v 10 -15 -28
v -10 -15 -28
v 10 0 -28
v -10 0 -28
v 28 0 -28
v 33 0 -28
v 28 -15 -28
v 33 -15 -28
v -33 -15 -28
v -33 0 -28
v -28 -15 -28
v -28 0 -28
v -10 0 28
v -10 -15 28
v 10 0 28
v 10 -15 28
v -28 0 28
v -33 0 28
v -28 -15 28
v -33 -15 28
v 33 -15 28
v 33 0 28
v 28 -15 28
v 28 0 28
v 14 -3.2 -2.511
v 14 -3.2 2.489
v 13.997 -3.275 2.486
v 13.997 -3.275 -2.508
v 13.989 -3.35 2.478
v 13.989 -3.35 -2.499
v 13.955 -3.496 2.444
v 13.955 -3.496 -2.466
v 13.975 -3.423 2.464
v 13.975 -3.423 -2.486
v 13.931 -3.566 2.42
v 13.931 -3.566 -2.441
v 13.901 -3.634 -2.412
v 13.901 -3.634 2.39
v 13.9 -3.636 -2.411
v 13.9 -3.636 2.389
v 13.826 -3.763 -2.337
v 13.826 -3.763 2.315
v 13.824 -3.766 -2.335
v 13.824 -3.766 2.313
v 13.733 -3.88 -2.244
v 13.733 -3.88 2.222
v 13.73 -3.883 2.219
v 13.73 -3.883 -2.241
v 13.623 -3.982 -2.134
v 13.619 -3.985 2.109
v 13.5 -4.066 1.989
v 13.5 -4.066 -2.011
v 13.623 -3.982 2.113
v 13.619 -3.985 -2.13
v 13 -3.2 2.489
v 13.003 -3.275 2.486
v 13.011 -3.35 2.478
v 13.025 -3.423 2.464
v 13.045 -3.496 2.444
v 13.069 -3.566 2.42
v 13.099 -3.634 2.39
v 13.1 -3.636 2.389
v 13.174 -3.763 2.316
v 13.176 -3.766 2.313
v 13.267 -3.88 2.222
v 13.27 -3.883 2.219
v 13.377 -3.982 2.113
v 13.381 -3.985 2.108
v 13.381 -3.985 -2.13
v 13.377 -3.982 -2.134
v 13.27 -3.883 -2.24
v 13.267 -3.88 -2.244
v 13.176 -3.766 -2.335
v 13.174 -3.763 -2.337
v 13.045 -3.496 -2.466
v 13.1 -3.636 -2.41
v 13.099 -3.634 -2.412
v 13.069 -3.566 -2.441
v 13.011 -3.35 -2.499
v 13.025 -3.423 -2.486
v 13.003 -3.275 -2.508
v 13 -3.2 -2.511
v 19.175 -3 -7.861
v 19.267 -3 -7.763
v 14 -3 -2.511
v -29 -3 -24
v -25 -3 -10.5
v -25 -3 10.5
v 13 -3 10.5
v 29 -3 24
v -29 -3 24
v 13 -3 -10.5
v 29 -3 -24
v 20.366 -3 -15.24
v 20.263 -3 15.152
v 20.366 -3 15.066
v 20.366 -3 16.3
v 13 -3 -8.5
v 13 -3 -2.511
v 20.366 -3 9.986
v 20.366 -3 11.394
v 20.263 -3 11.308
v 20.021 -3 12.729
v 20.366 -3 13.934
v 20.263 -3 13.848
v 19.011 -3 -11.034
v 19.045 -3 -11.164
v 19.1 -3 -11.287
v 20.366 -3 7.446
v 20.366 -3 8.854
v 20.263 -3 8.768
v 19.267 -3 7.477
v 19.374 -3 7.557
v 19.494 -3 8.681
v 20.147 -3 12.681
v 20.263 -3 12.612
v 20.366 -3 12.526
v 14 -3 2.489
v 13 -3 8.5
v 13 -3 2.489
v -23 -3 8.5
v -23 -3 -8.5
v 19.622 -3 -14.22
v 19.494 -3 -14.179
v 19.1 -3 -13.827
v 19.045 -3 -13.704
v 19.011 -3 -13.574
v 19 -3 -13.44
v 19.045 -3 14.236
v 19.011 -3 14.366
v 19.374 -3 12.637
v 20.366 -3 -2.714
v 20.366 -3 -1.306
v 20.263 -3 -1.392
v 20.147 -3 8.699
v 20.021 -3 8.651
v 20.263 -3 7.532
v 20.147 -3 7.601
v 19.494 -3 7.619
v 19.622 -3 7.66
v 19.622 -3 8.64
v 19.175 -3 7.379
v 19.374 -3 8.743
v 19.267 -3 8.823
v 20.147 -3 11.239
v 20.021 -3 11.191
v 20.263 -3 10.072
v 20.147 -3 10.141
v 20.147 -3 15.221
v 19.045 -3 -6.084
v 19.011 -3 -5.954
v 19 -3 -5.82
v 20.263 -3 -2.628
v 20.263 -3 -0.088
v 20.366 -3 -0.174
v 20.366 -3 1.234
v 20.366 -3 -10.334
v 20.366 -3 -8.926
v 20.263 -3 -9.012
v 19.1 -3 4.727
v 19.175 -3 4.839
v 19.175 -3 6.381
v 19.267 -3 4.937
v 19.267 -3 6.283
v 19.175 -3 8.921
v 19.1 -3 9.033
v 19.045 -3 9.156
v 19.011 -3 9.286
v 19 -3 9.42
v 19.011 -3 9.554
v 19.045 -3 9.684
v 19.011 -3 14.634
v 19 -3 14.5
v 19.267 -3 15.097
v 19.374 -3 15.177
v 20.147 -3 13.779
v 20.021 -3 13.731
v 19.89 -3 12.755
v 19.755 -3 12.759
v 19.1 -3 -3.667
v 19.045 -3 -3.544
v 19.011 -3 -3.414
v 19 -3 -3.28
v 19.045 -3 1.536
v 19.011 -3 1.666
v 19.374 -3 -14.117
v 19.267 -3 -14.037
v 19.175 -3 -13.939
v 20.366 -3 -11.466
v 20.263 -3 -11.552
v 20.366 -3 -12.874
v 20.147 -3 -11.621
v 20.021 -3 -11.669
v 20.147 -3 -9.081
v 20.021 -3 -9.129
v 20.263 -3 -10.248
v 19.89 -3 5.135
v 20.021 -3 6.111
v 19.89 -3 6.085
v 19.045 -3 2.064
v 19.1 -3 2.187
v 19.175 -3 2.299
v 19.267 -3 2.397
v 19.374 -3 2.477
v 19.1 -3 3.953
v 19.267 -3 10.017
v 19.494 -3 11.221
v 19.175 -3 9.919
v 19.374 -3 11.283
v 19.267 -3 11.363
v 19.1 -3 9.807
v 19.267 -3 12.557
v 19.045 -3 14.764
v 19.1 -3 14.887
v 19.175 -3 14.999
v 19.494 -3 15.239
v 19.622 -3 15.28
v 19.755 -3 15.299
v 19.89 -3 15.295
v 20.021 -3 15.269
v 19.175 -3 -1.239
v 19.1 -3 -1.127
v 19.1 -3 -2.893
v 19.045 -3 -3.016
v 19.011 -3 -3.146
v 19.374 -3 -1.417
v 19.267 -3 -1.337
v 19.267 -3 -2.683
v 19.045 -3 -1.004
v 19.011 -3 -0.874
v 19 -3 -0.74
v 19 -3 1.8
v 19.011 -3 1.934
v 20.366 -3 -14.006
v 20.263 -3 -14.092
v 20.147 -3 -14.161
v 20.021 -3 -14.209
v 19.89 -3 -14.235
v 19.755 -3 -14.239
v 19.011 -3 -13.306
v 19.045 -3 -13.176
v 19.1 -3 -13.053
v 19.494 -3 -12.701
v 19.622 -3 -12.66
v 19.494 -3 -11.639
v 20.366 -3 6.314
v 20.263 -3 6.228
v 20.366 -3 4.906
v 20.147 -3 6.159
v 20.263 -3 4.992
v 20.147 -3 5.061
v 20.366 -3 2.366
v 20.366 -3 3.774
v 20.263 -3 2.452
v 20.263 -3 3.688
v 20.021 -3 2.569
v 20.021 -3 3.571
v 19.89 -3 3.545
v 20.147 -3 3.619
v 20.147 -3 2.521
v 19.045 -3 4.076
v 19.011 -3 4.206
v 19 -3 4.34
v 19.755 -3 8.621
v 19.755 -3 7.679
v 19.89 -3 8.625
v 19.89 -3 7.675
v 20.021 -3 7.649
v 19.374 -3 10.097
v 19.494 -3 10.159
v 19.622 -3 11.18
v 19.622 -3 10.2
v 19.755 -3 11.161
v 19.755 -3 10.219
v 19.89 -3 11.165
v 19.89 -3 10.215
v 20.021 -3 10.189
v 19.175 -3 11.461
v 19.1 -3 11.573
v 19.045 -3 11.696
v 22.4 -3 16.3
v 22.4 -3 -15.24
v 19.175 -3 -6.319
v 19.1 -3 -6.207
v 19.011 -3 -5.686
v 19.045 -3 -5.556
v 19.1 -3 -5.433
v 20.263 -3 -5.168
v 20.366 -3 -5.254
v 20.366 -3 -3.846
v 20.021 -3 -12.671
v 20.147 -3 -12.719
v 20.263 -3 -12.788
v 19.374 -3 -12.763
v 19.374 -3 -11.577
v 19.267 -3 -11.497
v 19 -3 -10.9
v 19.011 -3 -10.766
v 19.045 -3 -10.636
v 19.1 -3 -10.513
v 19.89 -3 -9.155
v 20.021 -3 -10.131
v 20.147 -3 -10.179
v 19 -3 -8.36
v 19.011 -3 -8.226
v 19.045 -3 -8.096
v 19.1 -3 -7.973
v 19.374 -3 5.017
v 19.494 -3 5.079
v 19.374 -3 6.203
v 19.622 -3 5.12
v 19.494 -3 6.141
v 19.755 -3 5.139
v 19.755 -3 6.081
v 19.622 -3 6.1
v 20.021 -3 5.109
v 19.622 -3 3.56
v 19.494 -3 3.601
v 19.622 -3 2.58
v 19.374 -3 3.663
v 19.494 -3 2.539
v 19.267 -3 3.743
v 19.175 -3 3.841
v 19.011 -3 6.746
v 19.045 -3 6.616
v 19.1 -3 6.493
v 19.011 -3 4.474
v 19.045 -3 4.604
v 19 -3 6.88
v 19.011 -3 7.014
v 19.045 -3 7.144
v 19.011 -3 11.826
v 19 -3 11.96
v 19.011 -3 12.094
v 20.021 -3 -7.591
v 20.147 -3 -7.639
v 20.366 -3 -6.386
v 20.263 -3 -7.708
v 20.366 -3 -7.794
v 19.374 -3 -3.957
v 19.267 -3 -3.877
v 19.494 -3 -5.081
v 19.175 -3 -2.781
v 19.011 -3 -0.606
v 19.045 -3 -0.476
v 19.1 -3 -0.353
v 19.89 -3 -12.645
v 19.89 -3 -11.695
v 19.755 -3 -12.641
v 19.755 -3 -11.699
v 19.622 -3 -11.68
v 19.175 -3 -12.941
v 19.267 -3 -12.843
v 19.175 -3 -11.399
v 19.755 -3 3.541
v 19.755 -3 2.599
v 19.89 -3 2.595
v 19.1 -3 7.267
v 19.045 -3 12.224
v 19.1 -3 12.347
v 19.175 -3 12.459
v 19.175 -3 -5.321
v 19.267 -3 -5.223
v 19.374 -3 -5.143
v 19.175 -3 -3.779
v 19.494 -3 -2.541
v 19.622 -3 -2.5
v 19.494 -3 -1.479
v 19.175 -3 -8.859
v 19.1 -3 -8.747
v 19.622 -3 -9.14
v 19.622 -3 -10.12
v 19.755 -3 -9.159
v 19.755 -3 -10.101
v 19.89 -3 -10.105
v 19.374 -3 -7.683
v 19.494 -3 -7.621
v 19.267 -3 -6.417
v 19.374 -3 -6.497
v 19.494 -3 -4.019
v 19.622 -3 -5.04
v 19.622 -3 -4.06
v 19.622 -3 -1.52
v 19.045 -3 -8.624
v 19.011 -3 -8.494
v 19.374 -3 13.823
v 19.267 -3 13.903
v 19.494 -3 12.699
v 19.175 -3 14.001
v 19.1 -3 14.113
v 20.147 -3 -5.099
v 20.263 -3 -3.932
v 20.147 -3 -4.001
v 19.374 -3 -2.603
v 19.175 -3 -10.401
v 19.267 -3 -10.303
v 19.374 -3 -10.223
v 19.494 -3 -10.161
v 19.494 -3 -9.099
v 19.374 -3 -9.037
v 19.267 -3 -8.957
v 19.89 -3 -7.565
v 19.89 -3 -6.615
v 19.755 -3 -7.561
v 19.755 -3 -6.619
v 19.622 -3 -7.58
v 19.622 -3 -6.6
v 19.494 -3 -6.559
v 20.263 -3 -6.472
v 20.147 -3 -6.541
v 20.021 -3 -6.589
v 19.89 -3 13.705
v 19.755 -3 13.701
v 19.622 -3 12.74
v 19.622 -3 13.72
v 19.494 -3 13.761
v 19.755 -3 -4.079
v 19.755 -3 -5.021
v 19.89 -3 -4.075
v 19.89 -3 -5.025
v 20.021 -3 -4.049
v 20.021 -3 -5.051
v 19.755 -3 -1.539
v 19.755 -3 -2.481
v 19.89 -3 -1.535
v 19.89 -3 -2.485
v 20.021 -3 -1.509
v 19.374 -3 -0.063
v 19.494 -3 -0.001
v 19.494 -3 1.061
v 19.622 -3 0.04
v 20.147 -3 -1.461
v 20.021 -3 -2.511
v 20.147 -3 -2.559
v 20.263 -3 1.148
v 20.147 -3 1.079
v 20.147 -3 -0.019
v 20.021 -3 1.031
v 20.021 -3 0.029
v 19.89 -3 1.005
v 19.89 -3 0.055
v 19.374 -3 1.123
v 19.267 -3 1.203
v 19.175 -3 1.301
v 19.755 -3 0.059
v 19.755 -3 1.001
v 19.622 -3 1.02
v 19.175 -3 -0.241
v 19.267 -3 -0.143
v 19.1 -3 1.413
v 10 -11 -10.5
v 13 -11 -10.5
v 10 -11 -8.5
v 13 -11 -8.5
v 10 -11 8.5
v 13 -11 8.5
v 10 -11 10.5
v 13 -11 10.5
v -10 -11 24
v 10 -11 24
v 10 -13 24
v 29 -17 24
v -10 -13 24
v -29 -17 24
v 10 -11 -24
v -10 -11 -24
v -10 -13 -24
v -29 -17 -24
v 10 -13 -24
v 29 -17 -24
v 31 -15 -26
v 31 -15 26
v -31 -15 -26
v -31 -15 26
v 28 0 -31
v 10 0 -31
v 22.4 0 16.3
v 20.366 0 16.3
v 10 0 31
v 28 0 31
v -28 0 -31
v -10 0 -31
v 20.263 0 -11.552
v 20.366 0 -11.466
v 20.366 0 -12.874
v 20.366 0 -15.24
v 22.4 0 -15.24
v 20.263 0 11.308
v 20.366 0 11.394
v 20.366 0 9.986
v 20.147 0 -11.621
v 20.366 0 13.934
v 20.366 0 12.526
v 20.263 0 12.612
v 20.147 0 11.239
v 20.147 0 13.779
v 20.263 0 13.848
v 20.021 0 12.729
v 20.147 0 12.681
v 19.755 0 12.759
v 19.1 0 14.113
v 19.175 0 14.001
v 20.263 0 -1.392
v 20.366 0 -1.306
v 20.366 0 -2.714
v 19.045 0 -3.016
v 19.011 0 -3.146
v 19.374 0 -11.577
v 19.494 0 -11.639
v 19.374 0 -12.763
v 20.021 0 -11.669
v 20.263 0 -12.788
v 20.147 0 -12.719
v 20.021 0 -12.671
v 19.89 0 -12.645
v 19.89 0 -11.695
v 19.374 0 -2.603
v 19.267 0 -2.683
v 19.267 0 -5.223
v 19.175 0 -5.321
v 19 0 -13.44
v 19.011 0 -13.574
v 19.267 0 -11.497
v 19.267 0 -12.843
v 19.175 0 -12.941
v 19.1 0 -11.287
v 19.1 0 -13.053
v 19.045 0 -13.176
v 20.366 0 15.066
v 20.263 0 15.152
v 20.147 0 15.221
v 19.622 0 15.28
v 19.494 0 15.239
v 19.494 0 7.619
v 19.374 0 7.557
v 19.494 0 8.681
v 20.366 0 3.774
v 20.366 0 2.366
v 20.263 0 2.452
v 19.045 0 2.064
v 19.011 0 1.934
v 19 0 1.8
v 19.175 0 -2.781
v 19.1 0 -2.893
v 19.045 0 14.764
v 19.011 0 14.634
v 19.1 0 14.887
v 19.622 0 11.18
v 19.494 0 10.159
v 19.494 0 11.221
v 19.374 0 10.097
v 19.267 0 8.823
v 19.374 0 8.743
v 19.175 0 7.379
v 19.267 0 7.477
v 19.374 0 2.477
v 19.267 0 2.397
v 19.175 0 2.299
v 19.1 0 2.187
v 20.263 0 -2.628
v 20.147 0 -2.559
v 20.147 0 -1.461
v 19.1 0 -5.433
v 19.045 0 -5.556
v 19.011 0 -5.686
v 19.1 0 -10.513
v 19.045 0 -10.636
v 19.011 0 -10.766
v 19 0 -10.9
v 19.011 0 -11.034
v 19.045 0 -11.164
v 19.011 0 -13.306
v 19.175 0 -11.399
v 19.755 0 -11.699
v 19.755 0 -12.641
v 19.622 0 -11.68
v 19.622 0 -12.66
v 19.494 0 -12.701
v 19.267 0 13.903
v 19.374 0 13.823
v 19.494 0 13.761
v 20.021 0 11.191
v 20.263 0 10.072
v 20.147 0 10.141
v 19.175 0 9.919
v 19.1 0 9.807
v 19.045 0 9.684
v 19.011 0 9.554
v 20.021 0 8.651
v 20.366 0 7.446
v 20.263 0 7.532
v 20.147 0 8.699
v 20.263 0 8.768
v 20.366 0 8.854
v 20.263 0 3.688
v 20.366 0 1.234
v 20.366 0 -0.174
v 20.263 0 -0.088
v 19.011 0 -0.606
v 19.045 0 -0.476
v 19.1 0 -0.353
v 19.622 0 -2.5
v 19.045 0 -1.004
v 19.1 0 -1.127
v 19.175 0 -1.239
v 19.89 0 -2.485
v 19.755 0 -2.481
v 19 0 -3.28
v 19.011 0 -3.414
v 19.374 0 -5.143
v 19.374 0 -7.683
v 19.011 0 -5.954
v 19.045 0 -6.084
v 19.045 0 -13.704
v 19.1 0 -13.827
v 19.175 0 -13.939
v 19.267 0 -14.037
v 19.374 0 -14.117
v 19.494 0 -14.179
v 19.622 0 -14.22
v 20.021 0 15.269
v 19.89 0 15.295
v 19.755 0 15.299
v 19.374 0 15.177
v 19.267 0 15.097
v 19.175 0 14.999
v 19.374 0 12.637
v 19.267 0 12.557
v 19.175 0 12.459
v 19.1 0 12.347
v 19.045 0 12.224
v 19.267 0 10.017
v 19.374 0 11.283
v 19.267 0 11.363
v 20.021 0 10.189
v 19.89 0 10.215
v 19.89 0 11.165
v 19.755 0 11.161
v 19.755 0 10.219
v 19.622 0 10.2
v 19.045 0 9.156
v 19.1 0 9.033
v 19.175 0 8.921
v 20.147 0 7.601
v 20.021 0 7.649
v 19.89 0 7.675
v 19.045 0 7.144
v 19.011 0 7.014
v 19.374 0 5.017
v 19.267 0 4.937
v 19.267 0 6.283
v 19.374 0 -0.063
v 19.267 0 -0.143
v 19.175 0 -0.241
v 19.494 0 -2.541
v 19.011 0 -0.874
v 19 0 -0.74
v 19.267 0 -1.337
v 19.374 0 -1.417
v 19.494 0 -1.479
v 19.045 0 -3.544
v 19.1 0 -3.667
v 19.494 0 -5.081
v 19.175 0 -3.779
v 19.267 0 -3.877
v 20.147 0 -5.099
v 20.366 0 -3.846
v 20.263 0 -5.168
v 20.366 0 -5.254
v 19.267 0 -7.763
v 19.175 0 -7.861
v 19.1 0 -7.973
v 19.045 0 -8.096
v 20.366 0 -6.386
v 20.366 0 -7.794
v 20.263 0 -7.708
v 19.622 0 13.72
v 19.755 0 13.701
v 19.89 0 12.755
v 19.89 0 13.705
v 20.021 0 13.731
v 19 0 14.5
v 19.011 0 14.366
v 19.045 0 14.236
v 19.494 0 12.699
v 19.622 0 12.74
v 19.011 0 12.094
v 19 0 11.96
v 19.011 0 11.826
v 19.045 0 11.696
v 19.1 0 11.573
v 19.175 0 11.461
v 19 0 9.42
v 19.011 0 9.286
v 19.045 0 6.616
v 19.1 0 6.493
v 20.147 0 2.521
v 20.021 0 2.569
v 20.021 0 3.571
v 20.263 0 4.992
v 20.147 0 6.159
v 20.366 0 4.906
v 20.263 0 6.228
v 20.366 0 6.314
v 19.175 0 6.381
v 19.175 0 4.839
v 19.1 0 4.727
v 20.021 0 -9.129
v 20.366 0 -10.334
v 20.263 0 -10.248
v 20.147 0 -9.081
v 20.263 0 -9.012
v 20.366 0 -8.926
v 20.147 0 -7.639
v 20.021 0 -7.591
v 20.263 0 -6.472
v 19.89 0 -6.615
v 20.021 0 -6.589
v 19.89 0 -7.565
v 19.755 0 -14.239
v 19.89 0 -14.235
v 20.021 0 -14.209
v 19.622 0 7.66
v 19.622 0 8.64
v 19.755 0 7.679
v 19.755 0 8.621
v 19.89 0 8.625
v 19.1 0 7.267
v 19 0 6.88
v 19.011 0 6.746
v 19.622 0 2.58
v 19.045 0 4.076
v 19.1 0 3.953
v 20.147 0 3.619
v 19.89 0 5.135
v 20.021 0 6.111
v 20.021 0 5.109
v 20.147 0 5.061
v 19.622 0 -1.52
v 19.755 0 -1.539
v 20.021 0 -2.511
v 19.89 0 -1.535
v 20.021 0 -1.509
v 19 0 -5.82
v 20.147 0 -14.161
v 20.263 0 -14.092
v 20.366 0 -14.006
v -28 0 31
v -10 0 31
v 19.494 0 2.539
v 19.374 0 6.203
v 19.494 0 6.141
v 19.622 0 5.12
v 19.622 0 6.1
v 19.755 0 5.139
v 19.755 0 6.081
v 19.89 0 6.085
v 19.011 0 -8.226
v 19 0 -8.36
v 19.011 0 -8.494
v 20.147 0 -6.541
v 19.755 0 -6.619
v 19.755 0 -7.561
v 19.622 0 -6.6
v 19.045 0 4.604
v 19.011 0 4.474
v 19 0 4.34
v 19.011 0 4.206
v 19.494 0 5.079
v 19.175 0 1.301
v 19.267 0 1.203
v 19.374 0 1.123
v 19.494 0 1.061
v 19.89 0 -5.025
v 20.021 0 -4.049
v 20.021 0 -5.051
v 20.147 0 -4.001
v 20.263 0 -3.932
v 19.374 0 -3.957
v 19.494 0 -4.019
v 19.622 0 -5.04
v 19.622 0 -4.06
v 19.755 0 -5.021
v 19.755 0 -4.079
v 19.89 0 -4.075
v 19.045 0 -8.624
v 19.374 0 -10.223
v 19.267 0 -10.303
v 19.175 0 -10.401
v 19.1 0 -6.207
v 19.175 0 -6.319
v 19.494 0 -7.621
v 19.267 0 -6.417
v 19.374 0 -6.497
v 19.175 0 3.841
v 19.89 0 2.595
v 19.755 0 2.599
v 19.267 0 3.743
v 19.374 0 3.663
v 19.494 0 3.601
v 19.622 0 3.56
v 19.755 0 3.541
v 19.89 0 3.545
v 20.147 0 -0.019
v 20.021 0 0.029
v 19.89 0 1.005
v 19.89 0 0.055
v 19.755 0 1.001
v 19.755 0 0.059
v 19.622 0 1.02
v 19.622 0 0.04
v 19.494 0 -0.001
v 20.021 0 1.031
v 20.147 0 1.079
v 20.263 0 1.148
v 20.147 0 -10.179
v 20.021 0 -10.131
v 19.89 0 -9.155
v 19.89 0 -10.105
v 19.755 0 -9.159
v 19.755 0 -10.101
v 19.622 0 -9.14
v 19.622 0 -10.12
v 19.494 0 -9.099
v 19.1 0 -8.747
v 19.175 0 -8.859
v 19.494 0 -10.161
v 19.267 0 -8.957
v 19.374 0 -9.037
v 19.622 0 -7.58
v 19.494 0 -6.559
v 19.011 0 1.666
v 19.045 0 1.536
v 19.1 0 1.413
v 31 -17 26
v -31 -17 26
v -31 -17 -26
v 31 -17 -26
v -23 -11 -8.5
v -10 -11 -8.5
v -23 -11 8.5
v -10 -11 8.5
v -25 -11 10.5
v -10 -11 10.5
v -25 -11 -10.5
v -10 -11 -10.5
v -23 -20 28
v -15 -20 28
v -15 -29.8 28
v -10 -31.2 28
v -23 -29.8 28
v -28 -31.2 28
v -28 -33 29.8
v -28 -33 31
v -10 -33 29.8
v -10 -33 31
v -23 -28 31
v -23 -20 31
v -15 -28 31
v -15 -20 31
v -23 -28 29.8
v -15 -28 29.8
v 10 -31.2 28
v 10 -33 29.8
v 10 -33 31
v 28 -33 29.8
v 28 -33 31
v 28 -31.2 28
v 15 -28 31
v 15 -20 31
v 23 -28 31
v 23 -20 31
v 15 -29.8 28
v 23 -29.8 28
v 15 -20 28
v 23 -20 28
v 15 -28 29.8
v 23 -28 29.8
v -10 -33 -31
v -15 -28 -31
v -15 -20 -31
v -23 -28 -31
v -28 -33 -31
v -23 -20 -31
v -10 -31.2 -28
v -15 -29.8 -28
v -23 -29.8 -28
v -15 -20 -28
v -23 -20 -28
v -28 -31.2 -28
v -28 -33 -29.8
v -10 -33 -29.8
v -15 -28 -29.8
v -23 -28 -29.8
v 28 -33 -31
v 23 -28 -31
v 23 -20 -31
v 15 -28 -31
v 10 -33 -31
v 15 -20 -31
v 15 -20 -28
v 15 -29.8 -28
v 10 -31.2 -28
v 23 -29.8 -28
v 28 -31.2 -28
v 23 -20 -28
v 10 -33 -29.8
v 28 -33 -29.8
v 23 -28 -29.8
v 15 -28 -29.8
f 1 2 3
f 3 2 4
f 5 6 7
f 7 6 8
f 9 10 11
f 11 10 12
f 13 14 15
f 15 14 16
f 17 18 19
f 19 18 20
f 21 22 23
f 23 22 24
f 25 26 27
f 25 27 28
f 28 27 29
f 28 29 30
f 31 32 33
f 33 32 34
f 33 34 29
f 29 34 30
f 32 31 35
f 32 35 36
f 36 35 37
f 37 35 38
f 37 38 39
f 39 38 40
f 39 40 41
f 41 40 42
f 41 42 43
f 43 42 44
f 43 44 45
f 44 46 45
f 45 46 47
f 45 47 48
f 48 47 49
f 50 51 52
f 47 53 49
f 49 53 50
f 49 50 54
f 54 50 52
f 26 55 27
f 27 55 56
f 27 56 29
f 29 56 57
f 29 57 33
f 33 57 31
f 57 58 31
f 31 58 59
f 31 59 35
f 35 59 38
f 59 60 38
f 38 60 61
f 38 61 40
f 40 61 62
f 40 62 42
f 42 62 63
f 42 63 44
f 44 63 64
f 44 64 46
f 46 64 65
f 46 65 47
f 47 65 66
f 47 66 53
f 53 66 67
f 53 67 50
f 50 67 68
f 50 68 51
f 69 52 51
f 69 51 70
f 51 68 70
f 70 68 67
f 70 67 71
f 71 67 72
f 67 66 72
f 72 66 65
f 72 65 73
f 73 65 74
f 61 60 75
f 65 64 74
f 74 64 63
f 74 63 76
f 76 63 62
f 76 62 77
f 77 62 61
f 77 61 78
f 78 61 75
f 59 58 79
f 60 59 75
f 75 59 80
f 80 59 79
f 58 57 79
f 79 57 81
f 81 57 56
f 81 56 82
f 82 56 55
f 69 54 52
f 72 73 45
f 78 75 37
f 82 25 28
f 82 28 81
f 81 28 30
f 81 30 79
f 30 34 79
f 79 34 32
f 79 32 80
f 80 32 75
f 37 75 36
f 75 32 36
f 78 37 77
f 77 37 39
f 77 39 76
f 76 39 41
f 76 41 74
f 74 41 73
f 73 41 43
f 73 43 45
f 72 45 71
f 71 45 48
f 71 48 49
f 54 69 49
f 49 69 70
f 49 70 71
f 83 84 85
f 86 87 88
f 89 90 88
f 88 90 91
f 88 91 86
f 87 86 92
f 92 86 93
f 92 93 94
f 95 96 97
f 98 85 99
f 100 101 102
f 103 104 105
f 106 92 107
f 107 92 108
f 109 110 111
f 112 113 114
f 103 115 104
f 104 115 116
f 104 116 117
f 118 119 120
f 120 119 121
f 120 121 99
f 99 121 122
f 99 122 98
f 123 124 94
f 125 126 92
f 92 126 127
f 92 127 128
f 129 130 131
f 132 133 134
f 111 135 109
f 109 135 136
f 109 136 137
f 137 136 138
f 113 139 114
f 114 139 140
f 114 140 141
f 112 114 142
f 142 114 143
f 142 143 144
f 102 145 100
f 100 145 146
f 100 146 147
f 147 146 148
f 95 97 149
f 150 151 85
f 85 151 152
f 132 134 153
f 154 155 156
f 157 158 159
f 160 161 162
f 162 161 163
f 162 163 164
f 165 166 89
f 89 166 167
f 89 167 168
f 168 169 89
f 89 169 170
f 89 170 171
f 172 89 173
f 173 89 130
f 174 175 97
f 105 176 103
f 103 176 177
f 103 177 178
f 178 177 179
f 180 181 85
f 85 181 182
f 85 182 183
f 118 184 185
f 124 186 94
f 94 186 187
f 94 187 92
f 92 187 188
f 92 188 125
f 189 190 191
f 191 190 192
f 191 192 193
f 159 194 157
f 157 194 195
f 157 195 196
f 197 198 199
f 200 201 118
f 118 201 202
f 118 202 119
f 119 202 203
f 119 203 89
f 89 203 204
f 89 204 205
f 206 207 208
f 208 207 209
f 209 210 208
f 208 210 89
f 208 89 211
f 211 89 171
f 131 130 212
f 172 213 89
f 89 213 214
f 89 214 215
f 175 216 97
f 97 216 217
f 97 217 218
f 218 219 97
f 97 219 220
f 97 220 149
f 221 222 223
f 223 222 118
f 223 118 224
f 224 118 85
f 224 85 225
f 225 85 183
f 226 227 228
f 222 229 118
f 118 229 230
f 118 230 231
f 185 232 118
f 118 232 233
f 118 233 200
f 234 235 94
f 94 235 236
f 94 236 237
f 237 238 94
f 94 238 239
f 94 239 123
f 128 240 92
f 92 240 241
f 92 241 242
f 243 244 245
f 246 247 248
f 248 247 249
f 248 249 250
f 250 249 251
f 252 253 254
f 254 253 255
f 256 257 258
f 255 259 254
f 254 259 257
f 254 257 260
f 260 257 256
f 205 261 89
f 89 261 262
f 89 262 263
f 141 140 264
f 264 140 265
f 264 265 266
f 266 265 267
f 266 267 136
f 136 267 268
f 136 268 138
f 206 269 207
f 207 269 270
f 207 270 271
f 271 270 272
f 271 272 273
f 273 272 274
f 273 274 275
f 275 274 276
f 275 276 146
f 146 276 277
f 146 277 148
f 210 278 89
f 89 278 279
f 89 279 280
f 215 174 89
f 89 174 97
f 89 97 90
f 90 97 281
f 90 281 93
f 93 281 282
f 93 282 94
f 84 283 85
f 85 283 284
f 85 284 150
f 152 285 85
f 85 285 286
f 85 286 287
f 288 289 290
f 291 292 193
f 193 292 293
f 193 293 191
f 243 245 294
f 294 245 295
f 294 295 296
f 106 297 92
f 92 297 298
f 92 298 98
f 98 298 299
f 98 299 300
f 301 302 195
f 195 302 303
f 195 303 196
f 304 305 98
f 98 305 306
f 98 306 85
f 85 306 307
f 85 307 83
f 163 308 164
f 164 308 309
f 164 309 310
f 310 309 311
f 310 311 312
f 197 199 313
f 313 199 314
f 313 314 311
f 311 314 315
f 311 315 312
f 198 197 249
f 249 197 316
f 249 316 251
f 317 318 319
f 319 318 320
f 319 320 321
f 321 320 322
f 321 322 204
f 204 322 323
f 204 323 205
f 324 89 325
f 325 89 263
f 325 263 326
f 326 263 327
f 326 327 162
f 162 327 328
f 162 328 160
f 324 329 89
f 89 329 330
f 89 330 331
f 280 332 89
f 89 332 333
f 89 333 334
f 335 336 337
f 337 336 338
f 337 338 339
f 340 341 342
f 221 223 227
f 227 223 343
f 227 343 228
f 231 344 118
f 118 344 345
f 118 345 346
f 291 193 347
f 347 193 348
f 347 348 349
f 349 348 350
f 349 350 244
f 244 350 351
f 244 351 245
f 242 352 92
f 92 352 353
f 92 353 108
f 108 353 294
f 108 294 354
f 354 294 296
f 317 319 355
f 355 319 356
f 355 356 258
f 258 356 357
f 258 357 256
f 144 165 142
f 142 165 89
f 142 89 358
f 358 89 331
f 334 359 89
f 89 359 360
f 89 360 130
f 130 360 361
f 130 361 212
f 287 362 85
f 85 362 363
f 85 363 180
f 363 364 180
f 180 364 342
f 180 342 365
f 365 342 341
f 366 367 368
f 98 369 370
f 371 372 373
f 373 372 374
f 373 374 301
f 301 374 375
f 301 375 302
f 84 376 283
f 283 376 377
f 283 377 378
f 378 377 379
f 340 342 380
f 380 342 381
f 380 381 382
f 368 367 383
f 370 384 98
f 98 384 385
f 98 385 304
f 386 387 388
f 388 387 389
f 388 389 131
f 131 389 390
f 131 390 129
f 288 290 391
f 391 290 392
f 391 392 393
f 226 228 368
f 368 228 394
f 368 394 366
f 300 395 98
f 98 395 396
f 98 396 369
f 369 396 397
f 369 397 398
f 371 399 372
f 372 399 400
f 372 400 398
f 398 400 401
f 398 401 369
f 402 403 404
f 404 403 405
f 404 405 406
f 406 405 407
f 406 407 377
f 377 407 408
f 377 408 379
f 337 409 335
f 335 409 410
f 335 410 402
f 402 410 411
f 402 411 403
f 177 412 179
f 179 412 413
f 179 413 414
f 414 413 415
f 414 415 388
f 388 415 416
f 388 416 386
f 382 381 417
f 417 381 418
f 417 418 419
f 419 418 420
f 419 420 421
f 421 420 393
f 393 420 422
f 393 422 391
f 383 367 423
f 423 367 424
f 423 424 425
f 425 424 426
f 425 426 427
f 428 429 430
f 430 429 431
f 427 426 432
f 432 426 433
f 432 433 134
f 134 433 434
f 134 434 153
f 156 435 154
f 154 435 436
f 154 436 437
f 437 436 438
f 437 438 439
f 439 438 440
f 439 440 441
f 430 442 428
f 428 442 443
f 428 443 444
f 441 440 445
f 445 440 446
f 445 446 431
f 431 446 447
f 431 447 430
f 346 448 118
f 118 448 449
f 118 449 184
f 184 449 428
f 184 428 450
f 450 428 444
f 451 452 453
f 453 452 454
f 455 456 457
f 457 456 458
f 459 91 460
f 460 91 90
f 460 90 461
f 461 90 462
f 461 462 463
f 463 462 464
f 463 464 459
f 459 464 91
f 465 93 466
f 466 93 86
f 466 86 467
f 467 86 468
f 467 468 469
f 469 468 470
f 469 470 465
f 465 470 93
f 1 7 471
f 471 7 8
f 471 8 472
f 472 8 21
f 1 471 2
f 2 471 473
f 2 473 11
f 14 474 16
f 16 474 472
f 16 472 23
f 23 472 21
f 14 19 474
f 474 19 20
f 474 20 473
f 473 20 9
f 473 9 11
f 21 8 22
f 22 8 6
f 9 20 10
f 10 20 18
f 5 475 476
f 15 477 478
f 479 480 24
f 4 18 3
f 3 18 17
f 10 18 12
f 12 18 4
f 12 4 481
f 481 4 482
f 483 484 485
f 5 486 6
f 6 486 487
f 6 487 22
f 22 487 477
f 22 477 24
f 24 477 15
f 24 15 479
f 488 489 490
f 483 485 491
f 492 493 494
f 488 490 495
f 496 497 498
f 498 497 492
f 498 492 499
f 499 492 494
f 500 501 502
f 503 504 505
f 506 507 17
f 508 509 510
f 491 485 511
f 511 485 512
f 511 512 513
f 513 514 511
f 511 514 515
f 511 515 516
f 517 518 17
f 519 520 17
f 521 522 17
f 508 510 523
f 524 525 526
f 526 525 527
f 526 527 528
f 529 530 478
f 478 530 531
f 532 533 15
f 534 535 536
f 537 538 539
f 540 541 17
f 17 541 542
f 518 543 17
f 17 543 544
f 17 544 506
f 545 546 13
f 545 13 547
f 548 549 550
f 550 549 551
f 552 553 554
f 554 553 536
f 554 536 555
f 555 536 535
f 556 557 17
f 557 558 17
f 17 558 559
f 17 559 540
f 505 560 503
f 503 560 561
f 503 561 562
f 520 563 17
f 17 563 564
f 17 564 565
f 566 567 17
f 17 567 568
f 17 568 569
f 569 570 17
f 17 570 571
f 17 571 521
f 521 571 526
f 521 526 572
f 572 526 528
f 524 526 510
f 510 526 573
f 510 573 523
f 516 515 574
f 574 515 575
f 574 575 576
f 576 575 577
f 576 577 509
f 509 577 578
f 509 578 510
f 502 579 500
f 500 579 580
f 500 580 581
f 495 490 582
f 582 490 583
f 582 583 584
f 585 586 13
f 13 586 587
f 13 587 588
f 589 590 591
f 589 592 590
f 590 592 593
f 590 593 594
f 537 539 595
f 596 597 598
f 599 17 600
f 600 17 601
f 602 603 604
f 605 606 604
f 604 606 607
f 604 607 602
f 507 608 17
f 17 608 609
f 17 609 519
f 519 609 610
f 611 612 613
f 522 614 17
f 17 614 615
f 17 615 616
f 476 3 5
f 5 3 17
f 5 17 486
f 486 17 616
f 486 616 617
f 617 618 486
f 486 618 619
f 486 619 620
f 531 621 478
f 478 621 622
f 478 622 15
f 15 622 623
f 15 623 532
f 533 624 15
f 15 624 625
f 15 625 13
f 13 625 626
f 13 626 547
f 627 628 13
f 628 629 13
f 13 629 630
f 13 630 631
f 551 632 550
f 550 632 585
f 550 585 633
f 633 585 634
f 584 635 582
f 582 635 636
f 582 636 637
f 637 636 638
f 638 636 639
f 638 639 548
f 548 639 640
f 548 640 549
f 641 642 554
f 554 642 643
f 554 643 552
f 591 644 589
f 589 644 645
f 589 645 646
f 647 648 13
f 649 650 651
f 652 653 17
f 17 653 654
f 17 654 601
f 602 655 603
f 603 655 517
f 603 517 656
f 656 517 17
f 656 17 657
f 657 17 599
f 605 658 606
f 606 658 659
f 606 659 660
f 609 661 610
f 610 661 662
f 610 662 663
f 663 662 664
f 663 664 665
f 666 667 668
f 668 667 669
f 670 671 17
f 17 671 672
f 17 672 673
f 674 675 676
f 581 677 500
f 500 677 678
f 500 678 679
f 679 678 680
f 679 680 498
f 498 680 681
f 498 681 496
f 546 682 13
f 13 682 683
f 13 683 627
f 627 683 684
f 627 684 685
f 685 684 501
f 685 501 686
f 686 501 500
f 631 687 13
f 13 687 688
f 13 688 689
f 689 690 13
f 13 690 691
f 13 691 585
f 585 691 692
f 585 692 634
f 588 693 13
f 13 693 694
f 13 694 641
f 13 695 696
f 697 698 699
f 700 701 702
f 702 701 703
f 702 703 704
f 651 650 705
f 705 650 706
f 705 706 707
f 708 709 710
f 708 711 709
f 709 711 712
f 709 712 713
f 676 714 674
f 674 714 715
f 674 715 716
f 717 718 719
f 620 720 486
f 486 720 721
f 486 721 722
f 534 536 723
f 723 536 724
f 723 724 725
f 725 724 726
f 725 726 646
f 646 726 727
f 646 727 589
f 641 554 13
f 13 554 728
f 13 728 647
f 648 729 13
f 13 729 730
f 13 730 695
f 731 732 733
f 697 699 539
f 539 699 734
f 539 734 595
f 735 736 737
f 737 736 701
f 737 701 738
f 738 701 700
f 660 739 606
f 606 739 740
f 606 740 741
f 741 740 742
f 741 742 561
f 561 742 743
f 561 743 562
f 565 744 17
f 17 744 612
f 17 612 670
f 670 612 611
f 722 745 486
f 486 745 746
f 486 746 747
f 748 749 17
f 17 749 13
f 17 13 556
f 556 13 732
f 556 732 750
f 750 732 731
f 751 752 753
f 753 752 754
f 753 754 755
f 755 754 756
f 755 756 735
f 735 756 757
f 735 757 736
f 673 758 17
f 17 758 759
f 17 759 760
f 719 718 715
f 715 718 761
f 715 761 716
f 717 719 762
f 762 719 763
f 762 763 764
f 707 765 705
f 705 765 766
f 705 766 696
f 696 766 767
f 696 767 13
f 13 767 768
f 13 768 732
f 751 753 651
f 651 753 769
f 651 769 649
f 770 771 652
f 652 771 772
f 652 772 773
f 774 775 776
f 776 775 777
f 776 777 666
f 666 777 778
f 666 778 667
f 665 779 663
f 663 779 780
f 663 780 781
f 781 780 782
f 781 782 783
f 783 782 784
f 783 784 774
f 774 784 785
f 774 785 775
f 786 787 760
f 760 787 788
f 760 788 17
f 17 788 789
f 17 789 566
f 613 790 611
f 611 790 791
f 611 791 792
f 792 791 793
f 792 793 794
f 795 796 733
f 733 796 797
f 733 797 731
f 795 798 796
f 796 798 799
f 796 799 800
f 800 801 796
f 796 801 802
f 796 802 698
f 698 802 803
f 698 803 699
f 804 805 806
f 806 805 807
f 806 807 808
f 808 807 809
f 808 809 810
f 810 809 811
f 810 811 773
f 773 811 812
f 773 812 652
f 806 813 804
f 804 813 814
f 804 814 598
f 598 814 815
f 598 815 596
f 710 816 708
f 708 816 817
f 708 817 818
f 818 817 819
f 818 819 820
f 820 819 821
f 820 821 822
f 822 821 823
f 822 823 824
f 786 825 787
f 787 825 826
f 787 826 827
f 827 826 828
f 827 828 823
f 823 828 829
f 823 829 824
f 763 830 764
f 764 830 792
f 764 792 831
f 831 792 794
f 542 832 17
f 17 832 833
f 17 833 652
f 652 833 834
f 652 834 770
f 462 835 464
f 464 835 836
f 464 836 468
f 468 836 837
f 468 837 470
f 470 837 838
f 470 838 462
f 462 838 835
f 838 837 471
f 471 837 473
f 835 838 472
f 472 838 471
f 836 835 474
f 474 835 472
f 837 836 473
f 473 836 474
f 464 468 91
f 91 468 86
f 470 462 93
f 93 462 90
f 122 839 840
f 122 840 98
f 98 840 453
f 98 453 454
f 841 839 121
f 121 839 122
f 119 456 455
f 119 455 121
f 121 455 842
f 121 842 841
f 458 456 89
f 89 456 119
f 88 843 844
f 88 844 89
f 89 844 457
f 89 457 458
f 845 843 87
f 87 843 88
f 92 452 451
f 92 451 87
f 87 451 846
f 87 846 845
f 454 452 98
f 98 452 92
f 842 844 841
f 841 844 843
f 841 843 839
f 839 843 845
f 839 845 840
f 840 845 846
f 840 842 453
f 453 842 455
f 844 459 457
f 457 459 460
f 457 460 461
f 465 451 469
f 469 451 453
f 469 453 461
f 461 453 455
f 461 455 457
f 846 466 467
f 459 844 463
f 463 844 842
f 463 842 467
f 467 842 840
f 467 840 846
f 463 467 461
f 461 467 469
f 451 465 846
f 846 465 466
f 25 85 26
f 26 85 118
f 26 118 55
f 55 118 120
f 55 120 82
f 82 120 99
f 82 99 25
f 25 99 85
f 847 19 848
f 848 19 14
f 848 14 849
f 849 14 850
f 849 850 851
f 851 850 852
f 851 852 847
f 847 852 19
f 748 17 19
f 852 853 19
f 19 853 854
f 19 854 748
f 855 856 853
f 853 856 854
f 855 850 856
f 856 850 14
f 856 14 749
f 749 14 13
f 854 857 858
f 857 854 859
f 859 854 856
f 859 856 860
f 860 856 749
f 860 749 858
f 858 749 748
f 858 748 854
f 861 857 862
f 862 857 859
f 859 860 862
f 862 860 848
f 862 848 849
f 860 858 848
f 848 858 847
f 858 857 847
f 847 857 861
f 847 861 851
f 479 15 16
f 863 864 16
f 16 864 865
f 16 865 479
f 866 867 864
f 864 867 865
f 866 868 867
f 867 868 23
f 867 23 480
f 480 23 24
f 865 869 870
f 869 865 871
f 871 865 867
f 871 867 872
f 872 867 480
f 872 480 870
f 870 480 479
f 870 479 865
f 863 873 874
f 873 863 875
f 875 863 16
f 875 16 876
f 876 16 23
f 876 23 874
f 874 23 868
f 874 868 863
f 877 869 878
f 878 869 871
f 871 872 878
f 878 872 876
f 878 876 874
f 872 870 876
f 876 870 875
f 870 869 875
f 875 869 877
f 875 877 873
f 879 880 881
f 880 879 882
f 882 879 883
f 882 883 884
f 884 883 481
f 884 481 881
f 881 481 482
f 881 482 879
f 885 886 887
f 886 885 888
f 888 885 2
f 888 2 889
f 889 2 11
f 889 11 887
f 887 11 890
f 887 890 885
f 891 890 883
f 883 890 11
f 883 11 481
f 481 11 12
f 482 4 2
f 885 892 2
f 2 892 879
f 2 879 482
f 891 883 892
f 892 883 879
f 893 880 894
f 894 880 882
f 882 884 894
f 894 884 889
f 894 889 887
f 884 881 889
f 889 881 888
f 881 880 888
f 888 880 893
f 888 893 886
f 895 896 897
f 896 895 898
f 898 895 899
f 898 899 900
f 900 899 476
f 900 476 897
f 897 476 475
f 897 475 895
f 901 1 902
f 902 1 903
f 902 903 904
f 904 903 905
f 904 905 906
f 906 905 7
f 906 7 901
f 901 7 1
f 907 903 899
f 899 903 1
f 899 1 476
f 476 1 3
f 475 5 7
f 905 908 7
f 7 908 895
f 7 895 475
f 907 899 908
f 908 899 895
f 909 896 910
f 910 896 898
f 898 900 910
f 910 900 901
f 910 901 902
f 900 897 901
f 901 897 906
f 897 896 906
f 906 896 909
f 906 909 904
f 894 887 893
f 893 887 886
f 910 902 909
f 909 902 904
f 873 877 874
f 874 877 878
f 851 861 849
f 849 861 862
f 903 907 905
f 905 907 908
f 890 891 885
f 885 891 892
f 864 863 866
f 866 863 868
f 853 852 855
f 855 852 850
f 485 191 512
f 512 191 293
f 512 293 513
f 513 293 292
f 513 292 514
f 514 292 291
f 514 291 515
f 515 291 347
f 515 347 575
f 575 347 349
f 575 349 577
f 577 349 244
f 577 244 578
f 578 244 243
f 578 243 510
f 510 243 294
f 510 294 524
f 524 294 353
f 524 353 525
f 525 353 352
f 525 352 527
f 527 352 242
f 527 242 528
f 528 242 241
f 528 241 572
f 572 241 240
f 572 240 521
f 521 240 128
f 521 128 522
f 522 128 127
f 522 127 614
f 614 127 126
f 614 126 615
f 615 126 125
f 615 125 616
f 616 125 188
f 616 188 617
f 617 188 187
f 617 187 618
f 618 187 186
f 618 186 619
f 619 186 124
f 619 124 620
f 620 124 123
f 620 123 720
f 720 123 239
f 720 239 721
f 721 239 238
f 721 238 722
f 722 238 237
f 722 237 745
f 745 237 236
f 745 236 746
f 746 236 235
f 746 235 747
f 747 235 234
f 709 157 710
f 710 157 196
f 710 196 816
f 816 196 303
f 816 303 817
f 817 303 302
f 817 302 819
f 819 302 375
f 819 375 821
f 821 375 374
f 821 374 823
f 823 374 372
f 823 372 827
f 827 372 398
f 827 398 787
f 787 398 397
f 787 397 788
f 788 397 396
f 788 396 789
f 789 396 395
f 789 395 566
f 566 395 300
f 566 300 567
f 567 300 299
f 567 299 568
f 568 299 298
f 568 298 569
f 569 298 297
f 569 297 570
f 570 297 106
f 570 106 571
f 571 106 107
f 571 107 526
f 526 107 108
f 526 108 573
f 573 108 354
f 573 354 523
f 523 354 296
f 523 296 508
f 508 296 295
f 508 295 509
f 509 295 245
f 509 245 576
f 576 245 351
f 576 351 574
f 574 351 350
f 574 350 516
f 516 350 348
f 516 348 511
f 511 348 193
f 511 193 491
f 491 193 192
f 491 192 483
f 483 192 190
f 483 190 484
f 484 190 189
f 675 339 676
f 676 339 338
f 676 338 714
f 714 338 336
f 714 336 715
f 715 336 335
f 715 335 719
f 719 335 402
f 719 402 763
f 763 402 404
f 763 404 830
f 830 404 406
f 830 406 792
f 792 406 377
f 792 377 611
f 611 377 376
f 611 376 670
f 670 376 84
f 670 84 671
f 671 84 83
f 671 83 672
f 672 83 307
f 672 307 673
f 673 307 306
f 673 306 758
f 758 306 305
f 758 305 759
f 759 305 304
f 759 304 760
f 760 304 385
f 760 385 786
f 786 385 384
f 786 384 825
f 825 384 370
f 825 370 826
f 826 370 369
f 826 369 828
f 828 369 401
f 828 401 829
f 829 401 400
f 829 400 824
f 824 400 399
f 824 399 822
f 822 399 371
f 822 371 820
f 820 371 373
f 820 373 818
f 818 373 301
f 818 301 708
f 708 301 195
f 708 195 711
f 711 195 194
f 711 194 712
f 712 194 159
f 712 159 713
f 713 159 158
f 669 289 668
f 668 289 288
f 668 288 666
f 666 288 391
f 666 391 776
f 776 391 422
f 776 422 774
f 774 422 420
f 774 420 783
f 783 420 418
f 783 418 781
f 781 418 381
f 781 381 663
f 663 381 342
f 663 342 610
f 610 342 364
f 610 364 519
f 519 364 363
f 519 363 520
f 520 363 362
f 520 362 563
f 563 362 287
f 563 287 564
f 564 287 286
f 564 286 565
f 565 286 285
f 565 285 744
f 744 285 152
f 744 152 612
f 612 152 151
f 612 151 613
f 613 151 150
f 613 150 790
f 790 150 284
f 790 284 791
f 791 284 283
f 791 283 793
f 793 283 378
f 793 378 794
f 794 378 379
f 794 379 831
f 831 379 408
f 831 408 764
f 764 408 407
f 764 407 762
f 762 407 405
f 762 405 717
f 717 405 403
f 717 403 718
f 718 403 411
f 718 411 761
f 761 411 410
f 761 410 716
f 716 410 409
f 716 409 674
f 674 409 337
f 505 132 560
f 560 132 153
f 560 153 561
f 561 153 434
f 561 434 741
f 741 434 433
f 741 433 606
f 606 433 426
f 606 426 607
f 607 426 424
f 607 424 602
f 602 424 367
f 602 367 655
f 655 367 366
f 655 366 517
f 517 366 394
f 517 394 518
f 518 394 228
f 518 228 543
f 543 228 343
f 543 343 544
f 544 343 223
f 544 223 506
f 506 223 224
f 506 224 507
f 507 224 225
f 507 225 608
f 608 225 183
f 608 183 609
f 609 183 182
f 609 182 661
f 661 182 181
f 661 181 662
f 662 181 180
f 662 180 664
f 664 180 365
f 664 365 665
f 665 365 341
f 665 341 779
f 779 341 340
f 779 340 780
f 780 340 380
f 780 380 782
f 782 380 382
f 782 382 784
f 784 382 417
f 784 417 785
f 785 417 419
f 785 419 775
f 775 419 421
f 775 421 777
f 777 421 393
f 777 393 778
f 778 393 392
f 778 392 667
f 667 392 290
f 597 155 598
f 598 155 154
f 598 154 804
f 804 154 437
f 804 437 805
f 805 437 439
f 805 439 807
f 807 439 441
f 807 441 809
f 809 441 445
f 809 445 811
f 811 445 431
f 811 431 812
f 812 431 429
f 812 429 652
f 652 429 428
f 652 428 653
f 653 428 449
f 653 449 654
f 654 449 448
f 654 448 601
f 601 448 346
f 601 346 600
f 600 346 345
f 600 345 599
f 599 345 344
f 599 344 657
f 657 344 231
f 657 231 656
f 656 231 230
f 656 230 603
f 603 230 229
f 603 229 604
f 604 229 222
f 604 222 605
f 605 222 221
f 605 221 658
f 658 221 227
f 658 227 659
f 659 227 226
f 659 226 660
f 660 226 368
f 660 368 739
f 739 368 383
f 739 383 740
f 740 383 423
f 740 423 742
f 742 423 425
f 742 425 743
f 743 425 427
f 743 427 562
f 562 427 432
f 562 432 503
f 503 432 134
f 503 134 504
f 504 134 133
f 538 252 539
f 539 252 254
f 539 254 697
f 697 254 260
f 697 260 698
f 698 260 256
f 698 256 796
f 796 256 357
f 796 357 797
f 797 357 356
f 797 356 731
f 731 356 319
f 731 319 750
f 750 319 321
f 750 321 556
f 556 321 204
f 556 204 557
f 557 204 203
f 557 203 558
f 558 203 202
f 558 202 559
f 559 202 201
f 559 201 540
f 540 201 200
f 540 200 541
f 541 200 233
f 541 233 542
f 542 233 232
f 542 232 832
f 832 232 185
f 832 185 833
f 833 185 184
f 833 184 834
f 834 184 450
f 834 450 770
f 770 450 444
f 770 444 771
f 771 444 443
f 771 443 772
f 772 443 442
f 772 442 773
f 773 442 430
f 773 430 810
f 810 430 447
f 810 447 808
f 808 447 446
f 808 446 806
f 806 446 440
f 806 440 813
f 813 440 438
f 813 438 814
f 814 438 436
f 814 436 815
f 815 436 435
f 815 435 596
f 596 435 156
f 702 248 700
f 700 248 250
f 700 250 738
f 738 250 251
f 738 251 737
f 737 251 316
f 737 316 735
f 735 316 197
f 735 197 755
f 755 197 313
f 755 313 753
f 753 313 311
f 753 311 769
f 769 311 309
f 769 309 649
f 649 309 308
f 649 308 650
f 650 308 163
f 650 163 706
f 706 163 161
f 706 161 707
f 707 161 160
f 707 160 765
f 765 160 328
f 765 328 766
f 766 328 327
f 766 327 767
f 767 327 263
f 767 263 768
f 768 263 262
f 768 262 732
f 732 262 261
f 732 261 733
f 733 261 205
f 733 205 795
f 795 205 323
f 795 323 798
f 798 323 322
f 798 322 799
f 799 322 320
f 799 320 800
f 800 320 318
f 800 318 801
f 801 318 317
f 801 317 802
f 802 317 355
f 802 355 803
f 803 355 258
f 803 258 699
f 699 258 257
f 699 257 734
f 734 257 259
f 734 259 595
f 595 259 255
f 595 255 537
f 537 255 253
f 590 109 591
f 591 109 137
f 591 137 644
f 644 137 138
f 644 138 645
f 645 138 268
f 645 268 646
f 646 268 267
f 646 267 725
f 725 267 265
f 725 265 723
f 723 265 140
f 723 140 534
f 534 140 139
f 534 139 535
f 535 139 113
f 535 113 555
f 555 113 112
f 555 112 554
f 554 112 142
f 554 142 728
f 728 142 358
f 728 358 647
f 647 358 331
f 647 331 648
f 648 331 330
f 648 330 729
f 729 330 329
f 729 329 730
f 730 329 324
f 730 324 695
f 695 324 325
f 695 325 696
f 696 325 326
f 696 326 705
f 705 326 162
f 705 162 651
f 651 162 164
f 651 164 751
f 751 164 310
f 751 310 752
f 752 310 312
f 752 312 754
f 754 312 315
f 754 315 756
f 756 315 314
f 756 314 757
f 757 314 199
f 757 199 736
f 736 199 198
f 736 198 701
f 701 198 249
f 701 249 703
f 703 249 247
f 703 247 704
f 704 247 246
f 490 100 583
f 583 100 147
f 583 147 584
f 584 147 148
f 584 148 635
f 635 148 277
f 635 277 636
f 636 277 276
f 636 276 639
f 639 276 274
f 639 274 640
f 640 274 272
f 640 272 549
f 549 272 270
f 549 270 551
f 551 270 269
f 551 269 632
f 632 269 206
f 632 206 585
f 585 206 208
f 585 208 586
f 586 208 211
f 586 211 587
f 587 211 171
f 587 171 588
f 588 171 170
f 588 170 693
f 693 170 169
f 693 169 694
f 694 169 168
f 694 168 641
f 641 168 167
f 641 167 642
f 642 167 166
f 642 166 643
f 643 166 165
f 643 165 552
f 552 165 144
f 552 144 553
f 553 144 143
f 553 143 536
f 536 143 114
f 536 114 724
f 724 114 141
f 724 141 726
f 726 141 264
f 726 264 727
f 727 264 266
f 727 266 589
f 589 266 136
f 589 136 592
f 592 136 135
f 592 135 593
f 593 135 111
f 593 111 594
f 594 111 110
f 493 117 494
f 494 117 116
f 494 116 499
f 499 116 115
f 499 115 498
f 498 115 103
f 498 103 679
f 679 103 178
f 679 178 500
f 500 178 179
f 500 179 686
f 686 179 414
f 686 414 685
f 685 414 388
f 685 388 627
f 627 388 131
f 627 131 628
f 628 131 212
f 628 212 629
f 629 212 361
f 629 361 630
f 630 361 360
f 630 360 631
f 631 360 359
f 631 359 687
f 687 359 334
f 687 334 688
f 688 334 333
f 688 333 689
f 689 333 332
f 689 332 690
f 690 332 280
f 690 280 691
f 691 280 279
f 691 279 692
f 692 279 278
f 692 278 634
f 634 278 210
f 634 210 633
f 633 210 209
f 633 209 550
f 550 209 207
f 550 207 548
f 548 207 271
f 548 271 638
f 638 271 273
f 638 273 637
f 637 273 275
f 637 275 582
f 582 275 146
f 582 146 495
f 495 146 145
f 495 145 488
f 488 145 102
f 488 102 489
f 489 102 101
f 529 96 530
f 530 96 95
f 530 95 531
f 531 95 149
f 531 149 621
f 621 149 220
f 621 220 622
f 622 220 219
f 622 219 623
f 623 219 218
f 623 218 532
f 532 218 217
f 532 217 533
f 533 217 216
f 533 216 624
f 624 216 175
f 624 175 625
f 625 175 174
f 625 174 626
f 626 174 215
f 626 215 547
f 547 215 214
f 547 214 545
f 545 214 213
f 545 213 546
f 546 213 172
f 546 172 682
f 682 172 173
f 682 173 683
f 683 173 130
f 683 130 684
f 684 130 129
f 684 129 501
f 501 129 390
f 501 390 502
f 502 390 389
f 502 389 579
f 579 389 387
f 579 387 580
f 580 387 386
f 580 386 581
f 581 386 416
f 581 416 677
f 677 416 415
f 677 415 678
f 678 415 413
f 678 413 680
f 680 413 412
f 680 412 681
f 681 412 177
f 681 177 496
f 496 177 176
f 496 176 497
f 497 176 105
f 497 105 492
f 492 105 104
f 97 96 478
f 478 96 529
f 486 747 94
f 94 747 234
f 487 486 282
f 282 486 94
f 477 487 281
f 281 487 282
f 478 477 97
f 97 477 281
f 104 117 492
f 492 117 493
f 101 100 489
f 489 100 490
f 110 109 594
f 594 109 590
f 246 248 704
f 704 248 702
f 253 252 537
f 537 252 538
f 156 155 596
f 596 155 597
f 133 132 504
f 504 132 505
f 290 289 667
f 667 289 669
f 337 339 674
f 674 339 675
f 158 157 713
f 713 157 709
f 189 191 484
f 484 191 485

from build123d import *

# Parameters (mm, degrees)
SKETCH1_W           = 66
SKETCH1_H           = 56
BASE_DEPTH          = 3
WALL1_START         = -3
SKETCH4_W           = 66
SKETCH4_H           = 56
SKETCH4_W_2         = 58
SKETCH4_H_2         = 48
WALL1_DEPTH         = 12
WALL2_START         = -15
SKETCH8_W           = 62
SKETCH8_H           = 52
SKETCH8_W_2         = 58
SKETCH8_H_2         = 48
WALL2_DEPTH         = 2
BATTERYWALL_START   = -3
BATTERYWALL_DEPTH   = 8
BATTERYHOLDER_START = -11
SKETCH10_W          = 20
SKETCH10_H          = 48
BATTERYHOLDER_DEPTH = 2
BATTERYNOTCH_START  = -3
SKETCH15_W          = 1
SKETCH15_H          = 5
BATTERYNOTCH_DEPTH  = 1.2
BATTERYNOTCH2_R     = 1
CLIPS1_START        = 28
SKETCH11_W          = 18
SKETCH11_H          = 33
SKETCH11_W_2        = 8
SKETCH11_H_2        = 8
CLIPS1_DEPTH        = 3
CLIPS2_START        = -28
SKETCH11_2_W        = 18
SKETCH11_2_H        = 33
SKETCH11_2_W_2      = 8
SKETCH11_2_H_2      = 8
CLIPS2_DEPTH        = 3
CHAMFER3_SIZE       = 1.8
WIRESLOTS_START     = -3
SKETCH12_R          = 0.8
WIRESLOTS_DEPTH     = 60.026779311
WIRESLOTS2_START    = -3
SKETCH13_W          = 2.034314575
SKETCH13_H          = 31.54
WIRESLOTS2_DEPTH    = 60.026779311


with BuildPart() as part:
    # Sketch1 → Base (new body)
    with BuildSketch(Plane(origin=(0, 0, 0), x_dir=(1, 0, 0), z_dir=(0, 1, 0))):
        Rectangle(SKETCH1_W, SKETCH1_H)
    extrude(amount=-BASE_DEPTH)

    # Sketch4 → Wall1 (add)
    with BuildSketch(Plane(origin=(0, 0, 0), x_dir=(1, 0, 0), z_dir=(0, 1, 0)).offset(WALL1_START)):
        Rectangle(SKETCH4_W, SKETCH4_H)
        Rectangle(SKETCH4_W_2, SKETCH4_H_2, mode=Mode.SUBTRACT)
    extrude(amount=-WALL1_DEPTH)

    # Sketch8 → Wall2 (add)
    with BuildSketch(Plane(origin=(0, 0, 0), x_dir=(1, 0, 0), z_dir=(0, 1, 0)).offset(WALL2_START)):
        Rectangle(SKETCH8_W, SKETCH8_H)
        Rectangle(SKETCH8_W_2, SKETCH8_H_2, mode=Mode.SUBTRACT)
    extrude(amount=-WALL2_DEPTH)

    # Sketch9 → BatteryWall (add)
    with BuildSketch(Plane(origin=(0, 0, 0), x_dir=(1, 0, 0), z_dir=(0, 1, 0)).offset(BATTERYWALL_START)):
        Polygon((-23, 8.5), (13, 8.5), (13, 10.5), (-25, 10.5), (-25, -10.5), (13, -10.5), (13, -8.5), (-23, -8.5), align=None)
    extrude(amount=-BATTERYWALL_DEPTH)

    # Sketch10 → BatteryHolder (add)
    with BuildSketch(Plane(origin=(0, 0, 0), x_dir=(1, 0, 0), z_dir=(0, 1, 0)).offset(BATTERYHOLDER_START)):
        Rectangle(SKETCH10_W, SKETCH10_H)
    extrude(amount=-BATTERYHOLDER_DEPTH)

    # Sketch15 → BatteryNotch (add)
    with BuildSketch(Plane(origin=(0, 0, 0), x_dir=(1, 0, 0), z_dir=(0, 1, 0)).offset(BATTERYNOTCH_START)):
        with Locations((13.5, 0.010715453)):
            Rectangle(SKETCH15_W, SKETCH15_H)
    extrude(amount=-BATTERYNOTCH_DEPTH)

    # BatteryNotch2
    # the kernel refuses this fillet: 1 mm, written as the material it takes off along each edge
    with BuildSketch(Plane(origin=(14, -4.2, 4.989284547), x_dir=(0, 1, 0), z_dir=(0, 0, -1)), Plane(origin=(13, -4.2, -5.010715453), x_dir=(0, 1, 0), z_dir=(0, 0, 1))) as batterynotch2_piece_1:
        with BuildLine():
            CenterArc((BATTERYNOTCH2_R, -BATTERYNOTCH2_R), BATTERYNOTCH2_R, 90, 90)
            Line((0, -BATTERYNOTCH2_R), (0, 0))
            Line((0, 0), (BATTERYNOTCH2_R, 0))
        make_face()
    extrude(amount=10, mode=Mode.SUBTRACT)
    with BuildSketch(Plane(origin=(10.5, -4.2, 2.489284547), x_dir=(0, 1, 0), z_dir=(1, 0, 0)), Plane(origin=(16.5, -4.2, -2.510715453), x_dir=(0, 1, 0), z_dir=(-1, 0, 0))) as batterynotch2_piece_2:
        with BuildLine():
            CenterArc((BATTERYNOTCH2_R, -BATTERYNOTCH2_R), BATTERYNOTCH2_R, 90, 90)
            Line((0, -BATTERYNOTCH2_R), (0, 0))
            Line((0, 0), (BATTERYNOTCH2_R, 0))
        make_face()
    extrude(amount=6, mode=Mode.SUBTRACT)

    # Sketch11 → Clips1 (add)
    # profile 1 of 2: a face of its own
    with BuildSketch(Plane.XY.offset(CLIPS1_START)):
        with Locations((-19, -16.5)):
            Rectangle(SKETCH11_W, SKETCH11_H)
        with Locations((-19, -24)):
            Rectangle(SKETCH11_W_2, SKETCH11_H_2, mode=Mode.SUBTRACT)
    # profile 2 of 2: a face of its own
    with BuildSketch(Plane.XY.offset(CLIPS1_START)):
        with Locations((19, -16.5)):
            Rectangle(SKETCH11_W, SKETCH11_H)
        with Locations((19, -24)):
            Rectangle(SKETCH11_W_2, SKETCH11_H_2, mode=Mode.SUBTRACT)
    extrude(amount=CLIPS1_DEPTH)

    # Sketch11<2> → Clips2 (add)
    # profile 1 of 2: a face of its own
    with BuildSketch(Plane.XY.offset(CLIPS2_START)):
        with Locations((-19, -16.5)):
            Rectangle(SKETCH11_2_W, SKETCH11_2_H)
        with Locations((-19, -24)):
            Rectangle(SKETCH11_2_W_2, SKETCH11_2_H_2, mode=Mode.SUBTRACT)
    # profile 2 of 2: a face of its own
    with BuildSketch(Plane.XY.offset(CLIPS2_START)):
        with Locations((19, -16.5)):
            Rectangle(SKETCH11_2_W, SKETCH11_2_H)
        with Locations((19, -24)):
            Rectangle(SKETCH11_2_W_2, SKETCH11_2_H_2, mode=Mode.SUBTRACT)
    extrude(amount=-CLIPS2_DEPTH)

    # Chamfer3
    chamfer3_edges = [part.edges().sort_by_distance(p)[0] for p in [
        (-19, -33, 28),
        (-19, -28, 28),
        (19, -33, 28),
        (19, -28, 28),
        (-19, -28, -28),
        (-19, -33, -28),
        (19, -28, -28),
        (19, -33, -28),
    ]]
    chamfer(chamfer3_edges, length=CHAMFER3_SIZE)

    # Sketch12 → WireSlots (cut, through all)
    with BuildSketch(Plane(origin=(0, 0, 0), x_dir=(1, 0, 0), z_dir=(0, 1, 0)).offset(WIRESLOTS_START)):
        with Locations(Location((19.8, -14.5, 0), (0, 0, 90))):
            Circle(SKETCH12_R)
        with Locations(Location((19.8, -11.96, 0), (0, 0, 90))):
            Circle(SKETCH12_R)
        with Locations(Location((19.8, -9.42, 0), (0, 0, 90))):
            Circle(SKETCH12_R)
        with Locations(Location((19.8, -6.88, 0), (0, 0, 90))):
            Circle(SKETCH12_R)
        with Locations(Location((19.8, -4.34, 0), (0, 0, 90))):
            Circle(SKETCH12_R)
        with Locations(Location((19.8, -1.8, 0), (0, 0, 90))):
            Circle(SKETCH12_R)
        with Locations(Location((19.8, 0.74, 0), (0, 0, 90))):
            Circle(SKETCH12_R)
        with Locations(Location((19.8, 3.28, 0), (0, 0, 90))):
            Circle(SKETCH12_R)
        with Locations(Location((19.8, 5.82, 0), (0, 0, 90))):
            Circle(SKETCH12_R)
        with Locations(Location((19.8, 8.36, 0), (0, 0, 90))):
            Circle(SKETCH12_R)
        with Locations(Location((19.8, 10.9, 0), (0, 0, 90))):
            Circle(SKETCH12_R)
        with Locations(Location((19.8, 13.44, 0), (0, 0, 90))):
            Circle(SKETCH12_R)
    extrude(amount=WIRESLOTS_DEPTH, mode=Mode.SUBTRACT)

    # Sketch13 → WireSlots2 (cut, through all)
    with BuildSketch(Plane(origin=(0, 0, 0), x_dir=(1, 0, 0), z_dir=(0, 1, 0)).offset(WIRESLOTS2_START)):
        with Locations((21.382842713, -0.53)):
            Rectangle(SKETCH13_W, SKETCH13_H)
    extrude(amount=WIRESLOTS2_DEPTH, mode=Mode.SUBTRACT)


solid = part.part
